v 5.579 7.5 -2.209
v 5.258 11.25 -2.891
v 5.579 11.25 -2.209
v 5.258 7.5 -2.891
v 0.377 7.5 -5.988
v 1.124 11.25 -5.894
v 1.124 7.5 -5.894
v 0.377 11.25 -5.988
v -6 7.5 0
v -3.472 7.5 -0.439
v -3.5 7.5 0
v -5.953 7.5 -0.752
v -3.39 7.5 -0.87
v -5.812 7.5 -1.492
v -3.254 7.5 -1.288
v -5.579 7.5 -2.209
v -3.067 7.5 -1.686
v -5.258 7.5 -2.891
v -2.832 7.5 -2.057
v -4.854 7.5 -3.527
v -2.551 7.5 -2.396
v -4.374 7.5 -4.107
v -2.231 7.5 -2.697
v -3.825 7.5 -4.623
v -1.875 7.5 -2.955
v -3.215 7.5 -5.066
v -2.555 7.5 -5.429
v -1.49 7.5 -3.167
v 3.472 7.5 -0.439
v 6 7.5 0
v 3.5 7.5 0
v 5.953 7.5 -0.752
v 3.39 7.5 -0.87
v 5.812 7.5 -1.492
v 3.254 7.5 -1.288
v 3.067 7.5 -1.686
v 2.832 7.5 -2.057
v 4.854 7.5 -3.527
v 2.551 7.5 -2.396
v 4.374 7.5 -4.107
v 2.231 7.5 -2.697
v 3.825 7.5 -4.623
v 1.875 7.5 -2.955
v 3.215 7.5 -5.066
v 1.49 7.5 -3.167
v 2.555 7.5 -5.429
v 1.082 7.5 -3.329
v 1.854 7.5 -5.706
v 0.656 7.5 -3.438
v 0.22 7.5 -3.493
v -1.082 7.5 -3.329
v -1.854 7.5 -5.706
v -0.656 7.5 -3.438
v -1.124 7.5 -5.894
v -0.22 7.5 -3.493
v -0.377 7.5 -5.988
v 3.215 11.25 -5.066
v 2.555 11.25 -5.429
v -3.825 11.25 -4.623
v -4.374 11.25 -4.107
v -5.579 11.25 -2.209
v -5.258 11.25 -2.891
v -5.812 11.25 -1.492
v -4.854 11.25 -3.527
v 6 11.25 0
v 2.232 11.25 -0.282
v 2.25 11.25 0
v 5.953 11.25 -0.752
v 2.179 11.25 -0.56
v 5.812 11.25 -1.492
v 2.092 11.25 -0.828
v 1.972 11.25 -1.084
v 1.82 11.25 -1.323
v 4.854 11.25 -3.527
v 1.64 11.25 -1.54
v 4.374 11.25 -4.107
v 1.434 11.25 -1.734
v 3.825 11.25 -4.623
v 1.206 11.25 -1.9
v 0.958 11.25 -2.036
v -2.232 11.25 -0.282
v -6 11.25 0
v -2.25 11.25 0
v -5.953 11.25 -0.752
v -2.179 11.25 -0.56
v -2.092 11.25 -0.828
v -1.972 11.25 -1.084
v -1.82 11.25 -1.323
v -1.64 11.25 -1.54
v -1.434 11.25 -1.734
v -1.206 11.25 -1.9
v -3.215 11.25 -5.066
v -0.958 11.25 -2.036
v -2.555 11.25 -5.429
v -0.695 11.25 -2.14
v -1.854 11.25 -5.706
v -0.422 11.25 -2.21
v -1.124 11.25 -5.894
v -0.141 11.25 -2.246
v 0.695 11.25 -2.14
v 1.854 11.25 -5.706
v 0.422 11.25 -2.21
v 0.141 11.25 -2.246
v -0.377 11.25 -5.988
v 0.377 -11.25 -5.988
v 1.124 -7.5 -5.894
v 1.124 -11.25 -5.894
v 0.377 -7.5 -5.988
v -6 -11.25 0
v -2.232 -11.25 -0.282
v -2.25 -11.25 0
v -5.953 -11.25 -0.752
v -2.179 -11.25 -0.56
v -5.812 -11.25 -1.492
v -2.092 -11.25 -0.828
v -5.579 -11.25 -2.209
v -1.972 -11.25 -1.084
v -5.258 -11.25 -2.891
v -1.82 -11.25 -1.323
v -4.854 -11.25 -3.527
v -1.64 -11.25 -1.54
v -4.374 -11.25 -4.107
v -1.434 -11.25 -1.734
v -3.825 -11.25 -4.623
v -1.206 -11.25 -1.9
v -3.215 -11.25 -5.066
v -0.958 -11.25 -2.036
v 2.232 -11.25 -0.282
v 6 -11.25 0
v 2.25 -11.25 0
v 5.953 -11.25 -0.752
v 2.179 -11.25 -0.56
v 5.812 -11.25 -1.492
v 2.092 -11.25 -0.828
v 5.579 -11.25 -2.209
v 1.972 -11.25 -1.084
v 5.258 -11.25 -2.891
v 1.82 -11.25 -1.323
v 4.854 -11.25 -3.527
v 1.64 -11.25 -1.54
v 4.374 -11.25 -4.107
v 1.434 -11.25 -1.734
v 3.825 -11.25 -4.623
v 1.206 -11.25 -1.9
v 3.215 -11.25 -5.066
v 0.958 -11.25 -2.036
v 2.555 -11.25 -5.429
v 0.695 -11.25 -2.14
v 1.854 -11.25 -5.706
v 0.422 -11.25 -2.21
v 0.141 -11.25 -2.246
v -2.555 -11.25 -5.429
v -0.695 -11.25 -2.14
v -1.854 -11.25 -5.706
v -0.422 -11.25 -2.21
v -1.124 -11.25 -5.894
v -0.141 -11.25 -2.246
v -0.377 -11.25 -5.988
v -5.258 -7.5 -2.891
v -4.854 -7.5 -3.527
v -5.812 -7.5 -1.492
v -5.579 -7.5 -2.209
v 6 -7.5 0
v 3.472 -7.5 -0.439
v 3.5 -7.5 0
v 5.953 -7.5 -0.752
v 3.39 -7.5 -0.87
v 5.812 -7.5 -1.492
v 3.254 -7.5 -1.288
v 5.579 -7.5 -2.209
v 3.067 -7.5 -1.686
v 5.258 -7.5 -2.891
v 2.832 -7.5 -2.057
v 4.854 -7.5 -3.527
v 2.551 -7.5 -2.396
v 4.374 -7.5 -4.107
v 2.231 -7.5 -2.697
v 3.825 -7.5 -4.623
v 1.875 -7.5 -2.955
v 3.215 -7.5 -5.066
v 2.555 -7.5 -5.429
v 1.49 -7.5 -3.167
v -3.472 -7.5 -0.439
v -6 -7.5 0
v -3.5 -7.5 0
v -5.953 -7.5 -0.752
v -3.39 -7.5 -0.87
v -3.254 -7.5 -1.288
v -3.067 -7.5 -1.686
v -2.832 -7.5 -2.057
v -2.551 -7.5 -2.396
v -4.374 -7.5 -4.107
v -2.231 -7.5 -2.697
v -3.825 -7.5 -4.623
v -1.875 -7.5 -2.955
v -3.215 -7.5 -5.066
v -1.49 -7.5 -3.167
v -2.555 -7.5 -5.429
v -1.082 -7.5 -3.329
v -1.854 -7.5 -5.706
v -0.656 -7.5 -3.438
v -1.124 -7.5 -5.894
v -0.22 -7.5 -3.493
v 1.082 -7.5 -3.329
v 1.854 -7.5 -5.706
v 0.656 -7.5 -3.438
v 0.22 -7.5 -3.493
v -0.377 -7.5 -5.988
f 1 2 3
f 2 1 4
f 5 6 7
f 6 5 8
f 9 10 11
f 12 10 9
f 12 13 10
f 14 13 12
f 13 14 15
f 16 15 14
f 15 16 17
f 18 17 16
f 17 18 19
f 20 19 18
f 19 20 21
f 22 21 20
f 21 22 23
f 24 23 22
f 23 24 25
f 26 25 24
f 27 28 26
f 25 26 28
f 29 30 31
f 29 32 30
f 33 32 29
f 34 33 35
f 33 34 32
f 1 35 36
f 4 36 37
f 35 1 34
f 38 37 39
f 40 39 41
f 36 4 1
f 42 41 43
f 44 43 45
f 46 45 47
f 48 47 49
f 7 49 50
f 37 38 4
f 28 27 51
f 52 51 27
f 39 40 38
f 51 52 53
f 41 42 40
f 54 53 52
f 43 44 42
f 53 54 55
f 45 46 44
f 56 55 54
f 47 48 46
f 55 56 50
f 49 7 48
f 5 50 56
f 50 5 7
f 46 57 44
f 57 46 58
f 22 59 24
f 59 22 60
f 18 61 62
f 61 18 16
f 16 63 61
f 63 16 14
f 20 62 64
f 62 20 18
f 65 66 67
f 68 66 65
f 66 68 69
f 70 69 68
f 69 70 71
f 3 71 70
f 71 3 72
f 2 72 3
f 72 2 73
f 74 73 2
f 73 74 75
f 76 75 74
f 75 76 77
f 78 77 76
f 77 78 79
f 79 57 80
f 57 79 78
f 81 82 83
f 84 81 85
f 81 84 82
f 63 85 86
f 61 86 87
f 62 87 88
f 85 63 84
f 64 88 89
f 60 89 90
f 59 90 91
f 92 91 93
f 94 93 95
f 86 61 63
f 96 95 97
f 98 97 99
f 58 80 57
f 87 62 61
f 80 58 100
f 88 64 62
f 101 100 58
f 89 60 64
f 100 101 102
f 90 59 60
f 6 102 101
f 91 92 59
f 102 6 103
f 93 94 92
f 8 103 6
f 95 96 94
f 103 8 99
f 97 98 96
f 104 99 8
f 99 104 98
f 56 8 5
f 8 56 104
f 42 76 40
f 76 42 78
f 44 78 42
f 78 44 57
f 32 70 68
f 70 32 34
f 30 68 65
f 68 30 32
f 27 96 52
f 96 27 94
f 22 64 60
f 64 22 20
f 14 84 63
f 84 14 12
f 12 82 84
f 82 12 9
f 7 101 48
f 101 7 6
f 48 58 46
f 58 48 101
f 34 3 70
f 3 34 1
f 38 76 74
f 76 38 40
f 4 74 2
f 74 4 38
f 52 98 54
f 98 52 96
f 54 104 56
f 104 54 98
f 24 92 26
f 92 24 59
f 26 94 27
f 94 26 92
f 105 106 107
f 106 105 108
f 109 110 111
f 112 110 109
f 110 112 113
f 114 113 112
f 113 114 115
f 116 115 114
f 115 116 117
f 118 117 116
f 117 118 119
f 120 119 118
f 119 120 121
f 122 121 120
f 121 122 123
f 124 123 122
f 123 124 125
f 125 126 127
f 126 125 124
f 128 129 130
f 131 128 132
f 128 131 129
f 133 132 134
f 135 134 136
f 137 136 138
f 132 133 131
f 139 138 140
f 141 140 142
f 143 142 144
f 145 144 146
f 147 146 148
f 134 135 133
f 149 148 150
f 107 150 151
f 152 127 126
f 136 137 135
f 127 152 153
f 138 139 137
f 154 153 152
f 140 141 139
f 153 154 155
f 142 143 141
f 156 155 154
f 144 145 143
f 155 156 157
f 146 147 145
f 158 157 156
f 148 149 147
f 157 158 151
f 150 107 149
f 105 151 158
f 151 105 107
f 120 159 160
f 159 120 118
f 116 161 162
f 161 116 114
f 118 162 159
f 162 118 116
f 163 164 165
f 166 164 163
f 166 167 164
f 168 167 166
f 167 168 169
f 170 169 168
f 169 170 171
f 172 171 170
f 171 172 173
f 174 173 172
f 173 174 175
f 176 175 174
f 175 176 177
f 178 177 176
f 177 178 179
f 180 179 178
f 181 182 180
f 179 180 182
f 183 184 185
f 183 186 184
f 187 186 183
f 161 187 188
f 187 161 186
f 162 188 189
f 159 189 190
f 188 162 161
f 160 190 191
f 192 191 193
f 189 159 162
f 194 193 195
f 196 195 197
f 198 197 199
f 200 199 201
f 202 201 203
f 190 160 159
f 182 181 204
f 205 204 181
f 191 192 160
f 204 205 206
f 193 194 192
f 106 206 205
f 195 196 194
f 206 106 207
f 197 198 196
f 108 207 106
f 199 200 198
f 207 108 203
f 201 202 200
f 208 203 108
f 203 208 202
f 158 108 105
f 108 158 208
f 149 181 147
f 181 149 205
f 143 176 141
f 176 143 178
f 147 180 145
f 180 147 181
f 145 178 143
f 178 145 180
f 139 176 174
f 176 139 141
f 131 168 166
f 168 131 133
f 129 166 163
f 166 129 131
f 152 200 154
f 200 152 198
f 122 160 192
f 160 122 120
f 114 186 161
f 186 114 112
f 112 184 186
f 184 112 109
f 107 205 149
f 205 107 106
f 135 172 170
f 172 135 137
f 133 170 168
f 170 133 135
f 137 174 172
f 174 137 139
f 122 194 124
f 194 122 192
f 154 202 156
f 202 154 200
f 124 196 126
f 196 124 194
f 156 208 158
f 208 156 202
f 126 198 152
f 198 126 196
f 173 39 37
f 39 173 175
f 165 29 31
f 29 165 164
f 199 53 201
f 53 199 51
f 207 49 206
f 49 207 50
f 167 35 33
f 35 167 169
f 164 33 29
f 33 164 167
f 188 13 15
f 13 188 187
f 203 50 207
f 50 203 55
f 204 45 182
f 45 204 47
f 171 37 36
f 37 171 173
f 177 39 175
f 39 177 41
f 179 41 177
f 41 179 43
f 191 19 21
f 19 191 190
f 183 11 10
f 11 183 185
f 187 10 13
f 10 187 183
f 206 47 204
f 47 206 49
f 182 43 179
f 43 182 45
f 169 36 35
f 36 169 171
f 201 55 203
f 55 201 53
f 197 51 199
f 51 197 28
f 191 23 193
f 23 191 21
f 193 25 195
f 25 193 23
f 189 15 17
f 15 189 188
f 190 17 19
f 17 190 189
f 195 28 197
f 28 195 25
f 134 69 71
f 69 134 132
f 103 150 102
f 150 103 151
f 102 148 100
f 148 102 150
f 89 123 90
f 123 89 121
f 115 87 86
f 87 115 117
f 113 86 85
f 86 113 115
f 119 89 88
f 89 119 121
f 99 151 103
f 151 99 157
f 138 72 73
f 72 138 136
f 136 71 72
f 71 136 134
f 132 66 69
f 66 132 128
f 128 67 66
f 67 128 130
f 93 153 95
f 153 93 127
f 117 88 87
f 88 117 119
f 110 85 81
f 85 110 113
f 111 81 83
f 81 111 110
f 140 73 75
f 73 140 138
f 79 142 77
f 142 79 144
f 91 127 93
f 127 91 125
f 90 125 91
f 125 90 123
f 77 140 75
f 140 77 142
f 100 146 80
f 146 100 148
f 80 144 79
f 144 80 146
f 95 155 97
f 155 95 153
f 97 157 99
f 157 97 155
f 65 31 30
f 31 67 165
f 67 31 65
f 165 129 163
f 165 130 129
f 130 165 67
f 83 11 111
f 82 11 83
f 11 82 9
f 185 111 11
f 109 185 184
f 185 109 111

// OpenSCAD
$fn = 50;


difference() {
	union() {
		translate(v = [0, 11.2500000000, 0.0000000000]) {
			rotate(a = [90, 0, 0]) {
				cylinder(h = 3.7500000000, r = 6.0000000000);
			}
		}
		translate(v = [0, -7.5000000000, 0.0000000000]) {
			rotate(a = [90, 0, 0]) {
				cylinder(h = 3.7500000000, r = 6.0000000000);
			}
		}
		translate(v = [0, 11.2500000000, 0.0000000000]) {
			rotate(a = [90, 0, 0]) {
				cylinder(h = 22.5000000000, r = 3.5000000000);
			}
		}
	}
	union() {
		translate(v = [0, 11.2500000000, 0.0000000000]) {
			rotate(a = [90, 0, 0]) {
				cylinder(h = 22.5000000000, r = 2.2500000000);
			}
		}
		translate(v = [-250.0000000000, -250.0000000000, 0]) {
			cube(size = [500, 500, 500]);
		}
		translate(v = [-250.0000000000, -250.0000000000, 0]) {
			cube(size = [500, 500, 500]);
		}
		translate(v = [-250.0000000000, -250.0000000000, 0]) {
			cube(size = [500, 500, 500]);
		}
	}
}
